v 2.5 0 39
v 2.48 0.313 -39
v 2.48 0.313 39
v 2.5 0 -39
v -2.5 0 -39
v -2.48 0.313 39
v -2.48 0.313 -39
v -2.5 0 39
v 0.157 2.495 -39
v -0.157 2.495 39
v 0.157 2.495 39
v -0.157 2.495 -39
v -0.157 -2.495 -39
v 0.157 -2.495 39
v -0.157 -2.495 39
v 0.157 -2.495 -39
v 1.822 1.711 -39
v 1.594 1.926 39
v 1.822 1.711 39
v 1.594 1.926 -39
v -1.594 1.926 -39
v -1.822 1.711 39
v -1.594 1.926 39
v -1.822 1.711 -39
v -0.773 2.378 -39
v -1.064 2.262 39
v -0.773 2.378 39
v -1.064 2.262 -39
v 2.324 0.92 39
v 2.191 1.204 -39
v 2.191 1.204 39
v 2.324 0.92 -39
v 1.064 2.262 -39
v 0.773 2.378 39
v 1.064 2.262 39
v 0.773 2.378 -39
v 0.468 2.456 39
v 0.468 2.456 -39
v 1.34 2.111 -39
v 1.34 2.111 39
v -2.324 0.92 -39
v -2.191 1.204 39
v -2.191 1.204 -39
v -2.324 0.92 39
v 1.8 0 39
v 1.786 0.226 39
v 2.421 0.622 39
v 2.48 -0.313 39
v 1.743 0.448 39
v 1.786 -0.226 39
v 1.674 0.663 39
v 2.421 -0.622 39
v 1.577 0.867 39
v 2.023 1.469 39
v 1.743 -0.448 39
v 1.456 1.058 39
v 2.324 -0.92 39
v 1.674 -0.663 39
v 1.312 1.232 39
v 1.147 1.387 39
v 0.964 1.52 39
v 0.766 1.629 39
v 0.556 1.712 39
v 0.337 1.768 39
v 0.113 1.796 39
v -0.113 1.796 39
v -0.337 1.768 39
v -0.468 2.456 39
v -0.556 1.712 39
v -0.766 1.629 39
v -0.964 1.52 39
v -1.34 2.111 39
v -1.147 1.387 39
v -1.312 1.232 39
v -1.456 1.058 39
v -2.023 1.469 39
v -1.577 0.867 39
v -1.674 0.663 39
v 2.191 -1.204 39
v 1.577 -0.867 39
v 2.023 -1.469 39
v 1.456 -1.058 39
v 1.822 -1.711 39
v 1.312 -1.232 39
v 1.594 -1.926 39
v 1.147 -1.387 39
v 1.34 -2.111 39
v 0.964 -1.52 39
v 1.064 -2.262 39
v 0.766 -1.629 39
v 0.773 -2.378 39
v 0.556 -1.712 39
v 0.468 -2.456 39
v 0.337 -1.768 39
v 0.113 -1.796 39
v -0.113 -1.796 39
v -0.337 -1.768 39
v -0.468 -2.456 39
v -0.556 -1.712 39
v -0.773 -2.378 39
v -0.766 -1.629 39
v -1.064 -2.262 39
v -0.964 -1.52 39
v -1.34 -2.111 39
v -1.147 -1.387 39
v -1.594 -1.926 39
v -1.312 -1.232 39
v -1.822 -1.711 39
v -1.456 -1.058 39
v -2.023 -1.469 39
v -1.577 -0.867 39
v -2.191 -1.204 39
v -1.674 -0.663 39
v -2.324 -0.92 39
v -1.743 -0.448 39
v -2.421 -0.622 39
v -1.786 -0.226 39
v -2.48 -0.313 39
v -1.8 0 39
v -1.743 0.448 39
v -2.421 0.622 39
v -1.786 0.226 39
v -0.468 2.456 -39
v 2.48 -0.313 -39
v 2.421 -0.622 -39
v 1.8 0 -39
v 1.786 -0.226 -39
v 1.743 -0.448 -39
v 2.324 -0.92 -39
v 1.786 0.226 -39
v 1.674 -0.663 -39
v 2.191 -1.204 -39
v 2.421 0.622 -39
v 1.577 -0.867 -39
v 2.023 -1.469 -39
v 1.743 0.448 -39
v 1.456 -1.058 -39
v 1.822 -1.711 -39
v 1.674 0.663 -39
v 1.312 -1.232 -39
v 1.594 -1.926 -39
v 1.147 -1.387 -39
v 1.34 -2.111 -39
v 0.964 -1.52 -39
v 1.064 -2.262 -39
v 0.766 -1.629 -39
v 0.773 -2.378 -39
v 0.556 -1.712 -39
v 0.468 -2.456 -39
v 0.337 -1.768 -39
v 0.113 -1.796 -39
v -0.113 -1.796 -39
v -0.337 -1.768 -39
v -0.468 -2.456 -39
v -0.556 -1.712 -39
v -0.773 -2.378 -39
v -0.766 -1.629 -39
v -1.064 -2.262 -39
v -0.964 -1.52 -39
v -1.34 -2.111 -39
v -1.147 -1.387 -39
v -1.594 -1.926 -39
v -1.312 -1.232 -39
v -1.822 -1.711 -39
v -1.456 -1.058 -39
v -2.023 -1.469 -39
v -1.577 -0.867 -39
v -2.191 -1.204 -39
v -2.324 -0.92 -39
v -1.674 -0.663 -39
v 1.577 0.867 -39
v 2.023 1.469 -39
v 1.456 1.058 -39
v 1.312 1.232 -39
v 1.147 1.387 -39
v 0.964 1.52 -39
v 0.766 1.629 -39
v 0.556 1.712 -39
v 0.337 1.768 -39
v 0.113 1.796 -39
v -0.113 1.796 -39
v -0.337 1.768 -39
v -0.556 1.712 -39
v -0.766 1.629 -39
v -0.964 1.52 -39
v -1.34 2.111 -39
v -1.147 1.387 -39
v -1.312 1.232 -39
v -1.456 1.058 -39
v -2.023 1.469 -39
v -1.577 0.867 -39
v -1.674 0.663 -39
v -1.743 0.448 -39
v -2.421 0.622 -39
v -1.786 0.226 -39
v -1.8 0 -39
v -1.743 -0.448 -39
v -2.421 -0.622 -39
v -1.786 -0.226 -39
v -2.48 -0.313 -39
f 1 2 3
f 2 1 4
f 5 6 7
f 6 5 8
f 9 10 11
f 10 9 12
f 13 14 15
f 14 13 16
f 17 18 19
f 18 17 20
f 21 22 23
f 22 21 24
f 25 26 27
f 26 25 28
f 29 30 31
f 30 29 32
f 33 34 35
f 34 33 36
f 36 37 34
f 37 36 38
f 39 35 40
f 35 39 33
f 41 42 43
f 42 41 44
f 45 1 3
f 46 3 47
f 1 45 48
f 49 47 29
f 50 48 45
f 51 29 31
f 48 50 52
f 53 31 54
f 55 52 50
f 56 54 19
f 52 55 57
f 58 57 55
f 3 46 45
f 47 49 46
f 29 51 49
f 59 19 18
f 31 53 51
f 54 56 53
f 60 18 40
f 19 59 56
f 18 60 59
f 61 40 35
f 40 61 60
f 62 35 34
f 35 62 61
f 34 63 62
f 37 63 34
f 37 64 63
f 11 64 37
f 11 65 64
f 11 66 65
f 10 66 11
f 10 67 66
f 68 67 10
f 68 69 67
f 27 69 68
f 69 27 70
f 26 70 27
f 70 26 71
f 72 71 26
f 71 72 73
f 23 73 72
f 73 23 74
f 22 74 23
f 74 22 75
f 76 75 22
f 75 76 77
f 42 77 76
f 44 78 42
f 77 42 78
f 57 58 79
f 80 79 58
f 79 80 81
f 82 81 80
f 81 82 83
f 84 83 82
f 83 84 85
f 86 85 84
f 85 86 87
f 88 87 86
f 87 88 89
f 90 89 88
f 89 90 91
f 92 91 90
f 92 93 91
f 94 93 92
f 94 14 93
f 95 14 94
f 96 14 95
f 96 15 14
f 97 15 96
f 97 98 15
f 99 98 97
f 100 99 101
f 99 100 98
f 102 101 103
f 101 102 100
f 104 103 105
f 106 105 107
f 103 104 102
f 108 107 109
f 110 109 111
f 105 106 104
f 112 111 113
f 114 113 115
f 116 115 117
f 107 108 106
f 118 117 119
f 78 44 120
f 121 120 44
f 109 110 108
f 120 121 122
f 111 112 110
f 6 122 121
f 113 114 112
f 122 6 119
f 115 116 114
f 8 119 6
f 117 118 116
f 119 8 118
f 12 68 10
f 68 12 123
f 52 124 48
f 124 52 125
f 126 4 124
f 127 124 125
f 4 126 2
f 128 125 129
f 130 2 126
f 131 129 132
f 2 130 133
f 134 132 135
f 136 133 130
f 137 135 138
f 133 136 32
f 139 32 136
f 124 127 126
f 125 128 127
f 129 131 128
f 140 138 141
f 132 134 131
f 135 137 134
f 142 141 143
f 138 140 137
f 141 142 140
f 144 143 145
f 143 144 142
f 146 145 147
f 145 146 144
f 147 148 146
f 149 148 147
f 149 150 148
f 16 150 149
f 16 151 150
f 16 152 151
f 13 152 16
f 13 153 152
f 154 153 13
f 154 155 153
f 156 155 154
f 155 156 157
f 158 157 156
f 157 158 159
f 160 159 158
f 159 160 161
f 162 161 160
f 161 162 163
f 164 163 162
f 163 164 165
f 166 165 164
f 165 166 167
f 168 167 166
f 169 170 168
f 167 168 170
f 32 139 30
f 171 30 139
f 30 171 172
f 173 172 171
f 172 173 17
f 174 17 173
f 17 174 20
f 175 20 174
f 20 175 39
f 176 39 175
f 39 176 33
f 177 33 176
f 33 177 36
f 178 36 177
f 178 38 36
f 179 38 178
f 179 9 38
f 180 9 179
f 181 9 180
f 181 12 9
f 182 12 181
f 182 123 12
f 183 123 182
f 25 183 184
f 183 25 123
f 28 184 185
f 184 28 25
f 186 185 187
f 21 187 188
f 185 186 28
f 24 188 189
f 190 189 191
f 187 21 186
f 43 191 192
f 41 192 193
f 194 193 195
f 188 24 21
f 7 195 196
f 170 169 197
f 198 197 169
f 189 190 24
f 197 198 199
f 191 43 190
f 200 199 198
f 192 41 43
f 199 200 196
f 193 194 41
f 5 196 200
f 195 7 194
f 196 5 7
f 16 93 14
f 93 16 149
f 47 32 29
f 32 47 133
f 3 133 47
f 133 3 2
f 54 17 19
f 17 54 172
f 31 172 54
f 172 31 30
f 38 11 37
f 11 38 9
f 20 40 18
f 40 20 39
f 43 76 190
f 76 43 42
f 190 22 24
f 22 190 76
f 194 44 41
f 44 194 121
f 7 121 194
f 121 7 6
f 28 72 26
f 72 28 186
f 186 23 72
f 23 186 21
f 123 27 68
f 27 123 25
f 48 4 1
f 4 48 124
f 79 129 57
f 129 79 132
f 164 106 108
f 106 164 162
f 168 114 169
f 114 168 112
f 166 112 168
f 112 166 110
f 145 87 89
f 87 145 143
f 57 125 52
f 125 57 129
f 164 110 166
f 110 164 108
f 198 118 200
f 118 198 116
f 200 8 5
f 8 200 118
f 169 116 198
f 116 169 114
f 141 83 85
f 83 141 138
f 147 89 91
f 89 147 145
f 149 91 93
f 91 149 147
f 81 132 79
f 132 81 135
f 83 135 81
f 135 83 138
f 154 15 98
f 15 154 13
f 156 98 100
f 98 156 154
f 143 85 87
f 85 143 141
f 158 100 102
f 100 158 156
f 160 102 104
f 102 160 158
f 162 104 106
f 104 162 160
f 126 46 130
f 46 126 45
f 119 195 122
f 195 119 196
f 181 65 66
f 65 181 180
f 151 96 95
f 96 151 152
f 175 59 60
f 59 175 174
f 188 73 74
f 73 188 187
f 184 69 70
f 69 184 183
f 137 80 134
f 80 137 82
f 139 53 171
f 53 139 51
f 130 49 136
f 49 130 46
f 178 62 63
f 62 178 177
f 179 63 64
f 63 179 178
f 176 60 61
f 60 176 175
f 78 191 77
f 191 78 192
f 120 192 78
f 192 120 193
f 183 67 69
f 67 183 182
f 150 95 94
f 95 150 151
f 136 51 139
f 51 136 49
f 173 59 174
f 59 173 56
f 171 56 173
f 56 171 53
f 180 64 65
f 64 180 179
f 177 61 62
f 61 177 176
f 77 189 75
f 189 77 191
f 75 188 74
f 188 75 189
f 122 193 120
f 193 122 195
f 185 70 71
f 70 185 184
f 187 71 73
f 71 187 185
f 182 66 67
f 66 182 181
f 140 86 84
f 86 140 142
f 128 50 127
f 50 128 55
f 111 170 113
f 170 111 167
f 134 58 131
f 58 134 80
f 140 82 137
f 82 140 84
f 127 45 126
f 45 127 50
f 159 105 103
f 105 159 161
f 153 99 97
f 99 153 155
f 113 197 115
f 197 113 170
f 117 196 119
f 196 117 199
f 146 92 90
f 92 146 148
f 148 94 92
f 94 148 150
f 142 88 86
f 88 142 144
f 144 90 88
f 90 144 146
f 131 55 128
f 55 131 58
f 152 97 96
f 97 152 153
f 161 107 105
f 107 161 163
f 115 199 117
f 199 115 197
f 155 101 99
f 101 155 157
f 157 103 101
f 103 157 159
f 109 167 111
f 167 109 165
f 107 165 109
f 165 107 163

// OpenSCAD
$fn = 50;


difference() {
	union() {
		translate(v = [0, 0, -39.0000000000]) {
			cylinder(h = 78, r = 2.5000000000);
		}
	}
	union() {
		translate(v = [0, 0, -100.0000000000]) {
			cylinder(h = 200, r = 1.8000000000);
		}
	}
}
